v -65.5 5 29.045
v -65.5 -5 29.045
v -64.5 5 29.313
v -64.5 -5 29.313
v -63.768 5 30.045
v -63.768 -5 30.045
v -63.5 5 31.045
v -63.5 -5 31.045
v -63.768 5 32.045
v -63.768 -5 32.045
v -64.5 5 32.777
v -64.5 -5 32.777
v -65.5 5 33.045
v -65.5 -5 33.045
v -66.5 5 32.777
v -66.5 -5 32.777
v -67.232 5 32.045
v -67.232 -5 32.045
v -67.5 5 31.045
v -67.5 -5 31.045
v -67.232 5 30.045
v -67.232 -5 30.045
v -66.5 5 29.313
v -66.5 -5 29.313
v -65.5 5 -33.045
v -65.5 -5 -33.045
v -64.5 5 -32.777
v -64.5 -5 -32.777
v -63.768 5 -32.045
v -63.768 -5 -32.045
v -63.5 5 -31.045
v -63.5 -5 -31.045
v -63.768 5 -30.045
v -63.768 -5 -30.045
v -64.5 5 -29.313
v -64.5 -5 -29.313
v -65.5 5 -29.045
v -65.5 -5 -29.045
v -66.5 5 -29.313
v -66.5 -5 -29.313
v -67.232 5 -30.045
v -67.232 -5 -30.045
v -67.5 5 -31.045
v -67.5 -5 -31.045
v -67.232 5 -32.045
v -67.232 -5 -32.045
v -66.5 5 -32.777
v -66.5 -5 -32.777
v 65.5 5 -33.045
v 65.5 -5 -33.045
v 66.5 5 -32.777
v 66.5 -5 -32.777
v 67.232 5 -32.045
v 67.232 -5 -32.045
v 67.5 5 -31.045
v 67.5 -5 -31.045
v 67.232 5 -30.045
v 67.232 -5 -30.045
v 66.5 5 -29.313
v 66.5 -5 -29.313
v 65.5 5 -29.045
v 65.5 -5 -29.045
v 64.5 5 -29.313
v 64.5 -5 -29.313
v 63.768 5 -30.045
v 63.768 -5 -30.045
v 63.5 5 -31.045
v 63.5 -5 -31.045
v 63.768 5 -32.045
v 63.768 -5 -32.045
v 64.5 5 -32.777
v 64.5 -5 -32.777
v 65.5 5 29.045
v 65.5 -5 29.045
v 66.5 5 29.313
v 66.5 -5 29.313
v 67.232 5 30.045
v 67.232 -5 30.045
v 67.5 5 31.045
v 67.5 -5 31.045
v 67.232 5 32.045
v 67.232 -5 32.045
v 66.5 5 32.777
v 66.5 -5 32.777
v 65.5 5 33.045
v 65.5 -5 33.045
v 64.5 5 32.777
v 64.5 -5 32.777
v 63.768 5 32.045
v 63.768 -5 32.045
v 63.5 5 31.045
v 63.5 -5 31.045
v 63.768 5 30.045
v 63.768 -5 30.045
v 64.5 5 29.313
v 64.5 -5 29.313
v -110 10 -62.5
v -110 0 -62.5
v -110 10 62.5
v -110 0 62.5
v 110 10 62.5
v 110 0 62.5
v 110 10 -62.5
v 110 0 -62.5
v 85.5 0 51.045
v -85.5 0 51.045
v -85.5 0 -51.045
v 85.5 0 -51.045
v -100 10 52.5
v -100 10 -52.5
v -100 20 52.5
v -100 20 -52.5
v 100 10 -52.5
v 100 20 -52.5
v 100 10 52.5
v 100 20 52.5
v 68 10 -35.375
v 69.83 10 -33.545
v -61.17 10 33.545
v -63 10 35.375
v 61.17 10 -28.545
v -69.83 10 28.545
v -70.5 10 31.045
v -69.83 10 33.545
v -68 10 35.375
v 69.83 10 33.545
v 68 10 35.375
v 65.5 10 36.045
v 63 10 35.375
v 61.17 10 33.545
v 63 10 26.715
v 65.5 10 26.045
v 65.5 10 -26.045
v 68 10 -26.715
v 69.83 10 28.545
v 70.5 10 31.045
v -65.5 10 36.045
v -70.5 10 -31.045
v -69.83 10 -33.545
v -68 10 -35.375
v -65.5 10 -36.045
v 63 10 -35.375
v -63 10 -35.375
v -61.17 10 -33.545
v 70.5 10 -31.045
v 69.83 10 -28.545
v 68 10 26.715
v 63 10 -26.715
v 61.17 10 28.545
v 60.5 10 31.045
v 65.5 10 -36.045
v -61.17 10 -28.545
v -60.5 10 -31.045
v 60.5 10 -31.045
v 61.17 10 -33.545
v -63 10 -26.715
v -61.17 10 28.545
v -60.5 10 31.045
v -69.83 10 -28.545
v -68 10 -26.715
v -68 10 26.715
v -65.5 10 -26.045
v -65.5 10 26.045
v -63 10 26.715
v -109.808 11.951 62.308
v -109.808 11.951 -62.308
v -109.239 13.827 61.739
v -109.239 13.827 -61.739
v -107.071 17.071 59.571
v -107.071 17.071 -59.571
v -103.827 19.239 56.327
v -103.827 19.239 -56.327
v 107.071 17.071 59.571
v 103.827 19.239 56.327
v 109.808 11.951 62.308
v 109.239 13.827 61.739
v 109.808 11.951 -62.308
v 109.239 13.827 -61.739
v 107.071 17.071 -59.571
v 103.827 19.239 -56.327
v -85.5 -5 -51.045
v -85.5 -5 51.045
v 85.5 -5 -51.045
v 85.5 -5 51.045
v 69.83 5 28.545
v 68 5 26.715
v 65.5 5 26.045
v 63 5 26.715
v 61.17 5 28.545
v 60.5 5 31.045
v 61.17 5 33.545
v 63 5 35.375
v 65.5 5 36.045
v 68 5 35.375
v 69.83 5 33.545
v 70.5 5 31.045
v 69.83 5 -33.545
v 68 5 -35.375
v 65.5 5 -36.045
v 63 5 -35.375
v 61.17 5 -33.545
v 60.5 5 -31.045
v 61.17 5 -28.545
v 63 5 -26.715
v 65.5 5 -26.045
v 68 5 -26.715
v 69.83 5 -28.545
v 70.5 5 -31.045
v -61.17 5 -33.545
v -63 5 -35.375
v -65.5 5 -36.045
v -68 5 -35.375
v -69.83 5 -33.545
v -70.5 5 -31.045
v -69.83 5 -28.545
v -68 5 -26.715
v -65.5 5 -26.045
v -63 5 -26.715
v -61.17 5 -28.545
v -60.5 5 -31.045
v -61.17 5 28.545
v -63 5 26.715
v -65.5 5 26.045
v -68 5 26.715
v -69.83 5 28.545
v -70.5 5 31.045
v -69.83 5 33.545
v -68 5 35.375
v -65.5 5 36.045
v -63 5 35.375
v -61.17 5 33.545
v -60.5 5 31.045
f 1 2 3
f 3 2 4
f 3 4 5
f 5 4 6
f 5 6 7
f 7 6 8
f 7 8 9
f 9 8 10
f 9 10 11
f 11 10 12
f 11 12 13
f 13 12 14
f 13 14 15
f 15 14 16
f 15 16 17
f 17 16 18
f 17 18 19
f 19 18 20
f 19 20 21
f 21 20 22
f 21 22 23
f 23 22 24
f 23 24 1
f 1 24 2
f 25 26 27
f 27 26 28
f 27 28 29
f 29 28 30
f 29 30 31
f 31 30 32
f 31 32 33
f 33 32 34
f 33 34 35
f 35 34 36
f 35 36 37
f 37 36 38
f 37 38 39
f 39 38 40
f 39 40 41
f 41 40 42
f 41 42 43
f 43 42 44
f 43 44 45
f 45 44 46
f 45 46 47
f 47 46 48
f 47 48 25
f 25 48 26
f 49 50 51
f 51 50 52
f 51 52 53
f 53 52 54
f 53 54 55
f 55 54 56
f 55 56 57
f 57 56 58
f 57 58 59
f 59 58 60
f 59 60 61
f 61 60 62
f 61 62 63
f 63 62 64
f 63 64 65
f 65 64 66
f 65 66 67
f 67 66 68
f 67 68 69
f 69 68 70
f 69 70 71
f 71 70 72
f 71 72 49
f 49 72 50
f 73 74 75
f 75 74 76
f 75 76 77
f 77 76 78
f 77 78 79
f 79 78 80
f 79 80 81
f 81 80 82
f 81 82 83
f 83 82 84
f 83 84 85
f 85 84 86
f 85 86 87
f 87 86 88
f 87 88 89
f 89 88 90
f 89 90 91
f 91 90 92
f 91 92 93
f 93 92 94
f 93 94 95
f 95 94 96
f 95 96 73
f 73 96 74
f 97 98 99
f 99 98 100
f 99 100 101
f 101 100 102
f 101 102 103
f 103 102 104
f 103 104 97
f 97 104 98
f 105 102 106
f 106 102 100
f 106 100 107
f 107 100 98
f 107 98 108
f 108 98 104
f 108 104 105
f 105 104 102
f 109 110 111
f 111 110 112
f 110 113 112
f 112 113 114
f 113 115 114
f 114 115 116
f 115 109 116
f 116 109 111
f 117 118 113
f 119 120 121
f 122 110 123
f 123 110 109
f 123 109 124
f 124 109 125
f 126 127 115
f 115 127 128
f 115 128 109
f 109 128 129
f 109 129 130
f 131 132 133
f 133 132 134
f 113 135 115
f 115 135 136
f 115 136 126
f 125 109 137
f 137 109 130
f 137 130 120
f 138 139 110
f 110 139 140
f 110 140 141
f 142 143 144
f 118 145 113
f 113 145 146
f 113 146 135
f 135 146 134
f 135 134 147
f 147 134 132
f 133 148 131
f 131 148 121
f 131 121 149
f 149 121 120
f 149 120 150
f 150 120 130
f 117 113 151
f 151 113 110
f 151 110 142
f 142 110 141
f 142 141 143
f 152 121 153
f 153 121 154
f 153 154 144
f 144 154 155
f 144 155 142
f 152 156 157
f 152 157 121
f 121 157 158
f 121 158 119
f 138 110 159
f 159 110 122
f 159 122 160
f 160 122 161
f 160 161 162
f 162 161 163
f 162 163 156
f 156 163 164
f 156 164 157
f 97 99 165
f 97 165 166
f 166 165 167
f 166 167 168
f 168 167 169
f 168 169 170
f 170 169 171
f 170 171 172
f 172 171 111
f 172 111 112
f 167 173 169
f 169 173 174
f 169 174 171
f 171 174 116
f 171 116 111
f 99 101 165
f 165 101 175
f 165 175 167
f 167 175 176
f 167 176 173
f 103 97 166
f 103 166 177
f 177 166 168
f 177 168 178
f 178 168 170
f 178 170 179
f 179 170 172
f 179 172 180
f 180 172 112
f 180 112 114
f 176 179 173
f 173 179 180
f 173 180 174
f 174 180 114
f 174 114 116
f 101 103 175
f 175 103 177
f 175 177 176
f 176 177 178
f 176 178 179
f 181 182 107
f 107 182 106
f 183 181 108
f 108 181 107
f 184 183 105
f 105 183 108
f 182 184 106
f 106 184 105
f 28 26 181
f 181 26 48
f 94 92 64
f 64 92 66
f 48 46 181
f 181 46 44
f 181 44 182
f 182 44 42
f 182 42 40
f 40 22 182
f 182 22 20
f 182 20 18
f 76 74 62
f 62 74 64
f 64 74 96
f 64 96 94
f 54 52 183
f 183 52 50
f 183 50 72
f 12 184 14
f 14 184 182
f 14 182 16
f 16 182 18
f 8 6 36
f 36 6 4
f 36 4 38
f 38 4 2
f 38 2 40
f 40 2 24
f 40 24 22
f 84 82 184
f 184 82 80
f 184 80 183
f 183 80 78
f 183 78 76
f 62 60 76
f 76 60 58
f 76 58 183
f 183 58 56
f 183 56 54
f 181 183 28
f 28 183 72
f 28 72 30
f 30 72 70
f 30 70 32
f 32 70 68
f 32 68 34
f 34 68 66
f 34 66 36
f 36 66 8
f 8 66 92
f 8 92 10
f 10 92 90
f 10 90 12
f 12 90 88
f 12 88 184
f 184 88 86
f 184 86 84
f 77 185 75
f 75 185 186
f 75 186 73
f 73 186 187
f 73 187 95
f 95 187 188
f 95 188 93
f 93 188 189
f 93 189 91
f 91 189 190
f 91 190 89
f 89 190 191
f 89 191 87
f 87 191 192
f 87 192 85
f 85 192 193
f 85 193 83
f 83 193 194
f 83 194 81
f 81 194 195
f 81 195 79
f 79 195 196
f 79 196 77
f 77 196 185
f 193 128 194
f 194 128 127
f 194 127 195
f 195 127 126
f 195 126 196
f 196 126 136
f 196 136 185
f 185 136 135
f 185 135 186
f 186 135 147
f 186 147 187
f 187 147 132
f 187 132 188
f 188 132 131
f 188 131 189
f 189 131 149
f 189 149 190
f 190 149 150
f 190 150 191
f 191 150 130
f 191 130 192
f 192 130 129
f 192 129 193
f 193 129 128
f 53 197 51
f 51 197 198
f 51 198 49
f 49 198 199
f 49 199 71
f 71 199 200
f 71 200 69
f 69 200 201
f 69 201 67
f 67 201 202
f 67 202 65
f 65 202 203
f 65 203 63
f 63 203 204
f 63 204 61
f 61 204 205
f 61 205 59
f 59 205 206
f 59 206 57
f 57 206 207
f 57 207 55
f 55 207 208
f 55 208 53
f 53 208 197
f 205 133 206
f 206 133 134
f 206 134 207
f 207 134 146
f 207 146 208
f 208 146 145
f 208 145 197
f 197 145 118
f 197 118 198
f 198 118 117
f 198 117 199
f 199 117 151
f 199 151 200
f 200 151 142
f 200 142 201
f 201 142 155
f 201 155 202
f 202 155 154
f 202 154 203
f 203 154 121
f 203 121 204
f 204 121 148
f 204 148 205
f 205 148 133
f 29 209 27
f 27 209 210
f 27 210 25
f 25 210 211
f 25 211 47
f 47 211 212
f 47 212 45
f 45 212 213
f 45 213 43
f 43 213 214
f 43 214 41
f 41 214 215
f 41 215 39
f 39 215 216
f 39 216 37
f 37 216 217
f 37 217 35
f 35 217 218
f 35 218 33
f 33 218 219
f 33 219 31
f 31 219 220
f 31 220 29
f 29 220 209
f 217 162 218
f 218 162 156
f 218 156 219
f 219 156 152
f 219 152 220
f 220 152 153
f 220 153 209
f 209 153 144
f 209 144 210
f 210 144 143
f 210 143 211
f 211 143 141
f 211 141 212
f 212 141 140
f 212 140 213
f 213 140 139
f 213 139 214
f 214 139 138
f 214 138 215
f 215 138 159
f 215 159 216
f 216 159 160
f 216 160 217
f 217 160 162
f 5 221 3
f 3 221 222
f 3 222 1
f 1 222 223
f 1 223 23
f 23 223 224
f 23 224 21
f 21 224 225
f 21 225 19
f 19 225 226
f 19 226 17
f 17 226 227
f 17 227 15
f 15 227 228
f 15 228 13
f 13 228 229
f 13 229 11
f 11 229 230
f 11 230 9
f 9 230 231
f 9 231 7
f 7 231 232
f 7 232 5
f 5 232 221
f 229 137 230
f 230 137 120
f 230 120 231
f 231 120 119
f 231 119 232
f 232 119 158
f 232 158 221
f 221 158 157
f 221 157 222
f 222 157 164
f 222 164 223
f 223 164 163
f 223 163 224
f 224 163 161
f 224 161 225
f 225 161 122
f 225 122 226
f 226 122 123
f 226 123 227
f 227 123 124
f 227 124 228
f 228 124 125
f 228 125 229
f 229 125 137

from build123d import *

# Parameters (mm, degrees)
SKETCH1_W           = 220
SKETCH1_H           = 125
BOSS_EXTRUDE1_DEPTH = 20
SKETCH2_W           = 200
SKETCH2_H           = 105
CUT_EXTRUDE1_DEPTH  = 10
FILLET1_R           = 10
SKETCH3_W           = 171
SKETCH3_H           = 102.09
BOSS_EXTRUDE2_DEPTH = 5
SKETCH4_R           = 2
CUT_EXTRUDE2_DEPTH  = 129.962203765
SKETCH5_R           = 5
CUT_EXTRUDE3_DEPTH  = 5


with BuildPart() as part:
    # Sketch1 → Boss-Extrude1 (new body)
    with BuildSketch(Plane(origin=(0, 0, 0), x_dir=(1, 0, 0), z_dir=(0, 1, 0))):
        Rectangle(SKETCH1_W, SKETCH1_H)
    extrude(amount=BOSS_EXTRUDE1_DEPTH)

    # Sketch2 → Cut-Extrude1 (cut)
    with BuildSketch(Plane(origin=(0, 20, 0), x_dir=(1, 0, 0), z_dir=(0, 1, 0))):
        Rectangle(SKETCH2_W, SKETCH2_H)
    extrude(amount=-CUT_EXTRUDE1_DEPTH, mode=Mode.SUBTRACT)

    # Fillet1
    fillet1_edges = [part.edges().sort_by_distance(p)[0] for p in [
        (110, 20, 0),
        (0, 20, -62.5),
        (-110, 20, 0),
        (0, 20, 62.5),
    ]]
    fillet(fillet1_edges, radius=FILLET1_R - 0.0001)  # a hair under: the kernel refuses the full size

    # Sketch3 → Boss-Extrude2 (add)
    with BuildSketch(Plane.XZ):
        Rectangle(SKETCH3_W, SKETCH3_H)
    extrude(amount=BOSS_EXTRUDE2_DEPTH)

    # Sketch4 → Cut-Extrude2 (cut, through all)
    with BuildSketch(Plane.XZ.offset(5)):
        with Locations(Location((-65.5, 31.045, 0), (0, 0, 270))):
            Circle(SKETCH4_R)
        with Locations(Location((-65.5, -31.045, 0), (0, 0, 270))):
            Circle(SKETCH4_R)
        with Locations(Location((65.5, -31.045, 0), (0, 0, 270))):
            Circle(SKETCH4_R)
        with Locations(Location((65.5, 31.045, 0), (0, 0, 270))):
            Circle(SKETCH4_R)
    extrude(amount=-CUT_EXTRUDE2_DEPTH, mode=Mode.SUBTRACT)

    # Sketch5 → Cut-Extrude3 (cut)
    with BuildSketch(Plane(origin=(0, 10, 0), x_dir=(1, 0, 0), z_dir=(0, 1, 0))):
        with Locations(Location((-65.5, 31.045, 0), (0, 0, 270))):
            Circle(SKETCH5_R)
        with Locations(Location((-65.5, -31.045, 0), (0, 0, 270))):
            Circle(SKETCH5_R)
        with Locations(Location((65.5, -31.045, 0), (0, 0, 270))):
            Circle(SKETCH5_R)
        with Locations(Location((65.5, 31.045, 0), (0, 0, 270))):
            Circle(SKETCH5_R)
    extrude(amount=-CUT_EXTRUDE3_DEPTH, mode=Mode.SUBTRACT)


solid = part.part
